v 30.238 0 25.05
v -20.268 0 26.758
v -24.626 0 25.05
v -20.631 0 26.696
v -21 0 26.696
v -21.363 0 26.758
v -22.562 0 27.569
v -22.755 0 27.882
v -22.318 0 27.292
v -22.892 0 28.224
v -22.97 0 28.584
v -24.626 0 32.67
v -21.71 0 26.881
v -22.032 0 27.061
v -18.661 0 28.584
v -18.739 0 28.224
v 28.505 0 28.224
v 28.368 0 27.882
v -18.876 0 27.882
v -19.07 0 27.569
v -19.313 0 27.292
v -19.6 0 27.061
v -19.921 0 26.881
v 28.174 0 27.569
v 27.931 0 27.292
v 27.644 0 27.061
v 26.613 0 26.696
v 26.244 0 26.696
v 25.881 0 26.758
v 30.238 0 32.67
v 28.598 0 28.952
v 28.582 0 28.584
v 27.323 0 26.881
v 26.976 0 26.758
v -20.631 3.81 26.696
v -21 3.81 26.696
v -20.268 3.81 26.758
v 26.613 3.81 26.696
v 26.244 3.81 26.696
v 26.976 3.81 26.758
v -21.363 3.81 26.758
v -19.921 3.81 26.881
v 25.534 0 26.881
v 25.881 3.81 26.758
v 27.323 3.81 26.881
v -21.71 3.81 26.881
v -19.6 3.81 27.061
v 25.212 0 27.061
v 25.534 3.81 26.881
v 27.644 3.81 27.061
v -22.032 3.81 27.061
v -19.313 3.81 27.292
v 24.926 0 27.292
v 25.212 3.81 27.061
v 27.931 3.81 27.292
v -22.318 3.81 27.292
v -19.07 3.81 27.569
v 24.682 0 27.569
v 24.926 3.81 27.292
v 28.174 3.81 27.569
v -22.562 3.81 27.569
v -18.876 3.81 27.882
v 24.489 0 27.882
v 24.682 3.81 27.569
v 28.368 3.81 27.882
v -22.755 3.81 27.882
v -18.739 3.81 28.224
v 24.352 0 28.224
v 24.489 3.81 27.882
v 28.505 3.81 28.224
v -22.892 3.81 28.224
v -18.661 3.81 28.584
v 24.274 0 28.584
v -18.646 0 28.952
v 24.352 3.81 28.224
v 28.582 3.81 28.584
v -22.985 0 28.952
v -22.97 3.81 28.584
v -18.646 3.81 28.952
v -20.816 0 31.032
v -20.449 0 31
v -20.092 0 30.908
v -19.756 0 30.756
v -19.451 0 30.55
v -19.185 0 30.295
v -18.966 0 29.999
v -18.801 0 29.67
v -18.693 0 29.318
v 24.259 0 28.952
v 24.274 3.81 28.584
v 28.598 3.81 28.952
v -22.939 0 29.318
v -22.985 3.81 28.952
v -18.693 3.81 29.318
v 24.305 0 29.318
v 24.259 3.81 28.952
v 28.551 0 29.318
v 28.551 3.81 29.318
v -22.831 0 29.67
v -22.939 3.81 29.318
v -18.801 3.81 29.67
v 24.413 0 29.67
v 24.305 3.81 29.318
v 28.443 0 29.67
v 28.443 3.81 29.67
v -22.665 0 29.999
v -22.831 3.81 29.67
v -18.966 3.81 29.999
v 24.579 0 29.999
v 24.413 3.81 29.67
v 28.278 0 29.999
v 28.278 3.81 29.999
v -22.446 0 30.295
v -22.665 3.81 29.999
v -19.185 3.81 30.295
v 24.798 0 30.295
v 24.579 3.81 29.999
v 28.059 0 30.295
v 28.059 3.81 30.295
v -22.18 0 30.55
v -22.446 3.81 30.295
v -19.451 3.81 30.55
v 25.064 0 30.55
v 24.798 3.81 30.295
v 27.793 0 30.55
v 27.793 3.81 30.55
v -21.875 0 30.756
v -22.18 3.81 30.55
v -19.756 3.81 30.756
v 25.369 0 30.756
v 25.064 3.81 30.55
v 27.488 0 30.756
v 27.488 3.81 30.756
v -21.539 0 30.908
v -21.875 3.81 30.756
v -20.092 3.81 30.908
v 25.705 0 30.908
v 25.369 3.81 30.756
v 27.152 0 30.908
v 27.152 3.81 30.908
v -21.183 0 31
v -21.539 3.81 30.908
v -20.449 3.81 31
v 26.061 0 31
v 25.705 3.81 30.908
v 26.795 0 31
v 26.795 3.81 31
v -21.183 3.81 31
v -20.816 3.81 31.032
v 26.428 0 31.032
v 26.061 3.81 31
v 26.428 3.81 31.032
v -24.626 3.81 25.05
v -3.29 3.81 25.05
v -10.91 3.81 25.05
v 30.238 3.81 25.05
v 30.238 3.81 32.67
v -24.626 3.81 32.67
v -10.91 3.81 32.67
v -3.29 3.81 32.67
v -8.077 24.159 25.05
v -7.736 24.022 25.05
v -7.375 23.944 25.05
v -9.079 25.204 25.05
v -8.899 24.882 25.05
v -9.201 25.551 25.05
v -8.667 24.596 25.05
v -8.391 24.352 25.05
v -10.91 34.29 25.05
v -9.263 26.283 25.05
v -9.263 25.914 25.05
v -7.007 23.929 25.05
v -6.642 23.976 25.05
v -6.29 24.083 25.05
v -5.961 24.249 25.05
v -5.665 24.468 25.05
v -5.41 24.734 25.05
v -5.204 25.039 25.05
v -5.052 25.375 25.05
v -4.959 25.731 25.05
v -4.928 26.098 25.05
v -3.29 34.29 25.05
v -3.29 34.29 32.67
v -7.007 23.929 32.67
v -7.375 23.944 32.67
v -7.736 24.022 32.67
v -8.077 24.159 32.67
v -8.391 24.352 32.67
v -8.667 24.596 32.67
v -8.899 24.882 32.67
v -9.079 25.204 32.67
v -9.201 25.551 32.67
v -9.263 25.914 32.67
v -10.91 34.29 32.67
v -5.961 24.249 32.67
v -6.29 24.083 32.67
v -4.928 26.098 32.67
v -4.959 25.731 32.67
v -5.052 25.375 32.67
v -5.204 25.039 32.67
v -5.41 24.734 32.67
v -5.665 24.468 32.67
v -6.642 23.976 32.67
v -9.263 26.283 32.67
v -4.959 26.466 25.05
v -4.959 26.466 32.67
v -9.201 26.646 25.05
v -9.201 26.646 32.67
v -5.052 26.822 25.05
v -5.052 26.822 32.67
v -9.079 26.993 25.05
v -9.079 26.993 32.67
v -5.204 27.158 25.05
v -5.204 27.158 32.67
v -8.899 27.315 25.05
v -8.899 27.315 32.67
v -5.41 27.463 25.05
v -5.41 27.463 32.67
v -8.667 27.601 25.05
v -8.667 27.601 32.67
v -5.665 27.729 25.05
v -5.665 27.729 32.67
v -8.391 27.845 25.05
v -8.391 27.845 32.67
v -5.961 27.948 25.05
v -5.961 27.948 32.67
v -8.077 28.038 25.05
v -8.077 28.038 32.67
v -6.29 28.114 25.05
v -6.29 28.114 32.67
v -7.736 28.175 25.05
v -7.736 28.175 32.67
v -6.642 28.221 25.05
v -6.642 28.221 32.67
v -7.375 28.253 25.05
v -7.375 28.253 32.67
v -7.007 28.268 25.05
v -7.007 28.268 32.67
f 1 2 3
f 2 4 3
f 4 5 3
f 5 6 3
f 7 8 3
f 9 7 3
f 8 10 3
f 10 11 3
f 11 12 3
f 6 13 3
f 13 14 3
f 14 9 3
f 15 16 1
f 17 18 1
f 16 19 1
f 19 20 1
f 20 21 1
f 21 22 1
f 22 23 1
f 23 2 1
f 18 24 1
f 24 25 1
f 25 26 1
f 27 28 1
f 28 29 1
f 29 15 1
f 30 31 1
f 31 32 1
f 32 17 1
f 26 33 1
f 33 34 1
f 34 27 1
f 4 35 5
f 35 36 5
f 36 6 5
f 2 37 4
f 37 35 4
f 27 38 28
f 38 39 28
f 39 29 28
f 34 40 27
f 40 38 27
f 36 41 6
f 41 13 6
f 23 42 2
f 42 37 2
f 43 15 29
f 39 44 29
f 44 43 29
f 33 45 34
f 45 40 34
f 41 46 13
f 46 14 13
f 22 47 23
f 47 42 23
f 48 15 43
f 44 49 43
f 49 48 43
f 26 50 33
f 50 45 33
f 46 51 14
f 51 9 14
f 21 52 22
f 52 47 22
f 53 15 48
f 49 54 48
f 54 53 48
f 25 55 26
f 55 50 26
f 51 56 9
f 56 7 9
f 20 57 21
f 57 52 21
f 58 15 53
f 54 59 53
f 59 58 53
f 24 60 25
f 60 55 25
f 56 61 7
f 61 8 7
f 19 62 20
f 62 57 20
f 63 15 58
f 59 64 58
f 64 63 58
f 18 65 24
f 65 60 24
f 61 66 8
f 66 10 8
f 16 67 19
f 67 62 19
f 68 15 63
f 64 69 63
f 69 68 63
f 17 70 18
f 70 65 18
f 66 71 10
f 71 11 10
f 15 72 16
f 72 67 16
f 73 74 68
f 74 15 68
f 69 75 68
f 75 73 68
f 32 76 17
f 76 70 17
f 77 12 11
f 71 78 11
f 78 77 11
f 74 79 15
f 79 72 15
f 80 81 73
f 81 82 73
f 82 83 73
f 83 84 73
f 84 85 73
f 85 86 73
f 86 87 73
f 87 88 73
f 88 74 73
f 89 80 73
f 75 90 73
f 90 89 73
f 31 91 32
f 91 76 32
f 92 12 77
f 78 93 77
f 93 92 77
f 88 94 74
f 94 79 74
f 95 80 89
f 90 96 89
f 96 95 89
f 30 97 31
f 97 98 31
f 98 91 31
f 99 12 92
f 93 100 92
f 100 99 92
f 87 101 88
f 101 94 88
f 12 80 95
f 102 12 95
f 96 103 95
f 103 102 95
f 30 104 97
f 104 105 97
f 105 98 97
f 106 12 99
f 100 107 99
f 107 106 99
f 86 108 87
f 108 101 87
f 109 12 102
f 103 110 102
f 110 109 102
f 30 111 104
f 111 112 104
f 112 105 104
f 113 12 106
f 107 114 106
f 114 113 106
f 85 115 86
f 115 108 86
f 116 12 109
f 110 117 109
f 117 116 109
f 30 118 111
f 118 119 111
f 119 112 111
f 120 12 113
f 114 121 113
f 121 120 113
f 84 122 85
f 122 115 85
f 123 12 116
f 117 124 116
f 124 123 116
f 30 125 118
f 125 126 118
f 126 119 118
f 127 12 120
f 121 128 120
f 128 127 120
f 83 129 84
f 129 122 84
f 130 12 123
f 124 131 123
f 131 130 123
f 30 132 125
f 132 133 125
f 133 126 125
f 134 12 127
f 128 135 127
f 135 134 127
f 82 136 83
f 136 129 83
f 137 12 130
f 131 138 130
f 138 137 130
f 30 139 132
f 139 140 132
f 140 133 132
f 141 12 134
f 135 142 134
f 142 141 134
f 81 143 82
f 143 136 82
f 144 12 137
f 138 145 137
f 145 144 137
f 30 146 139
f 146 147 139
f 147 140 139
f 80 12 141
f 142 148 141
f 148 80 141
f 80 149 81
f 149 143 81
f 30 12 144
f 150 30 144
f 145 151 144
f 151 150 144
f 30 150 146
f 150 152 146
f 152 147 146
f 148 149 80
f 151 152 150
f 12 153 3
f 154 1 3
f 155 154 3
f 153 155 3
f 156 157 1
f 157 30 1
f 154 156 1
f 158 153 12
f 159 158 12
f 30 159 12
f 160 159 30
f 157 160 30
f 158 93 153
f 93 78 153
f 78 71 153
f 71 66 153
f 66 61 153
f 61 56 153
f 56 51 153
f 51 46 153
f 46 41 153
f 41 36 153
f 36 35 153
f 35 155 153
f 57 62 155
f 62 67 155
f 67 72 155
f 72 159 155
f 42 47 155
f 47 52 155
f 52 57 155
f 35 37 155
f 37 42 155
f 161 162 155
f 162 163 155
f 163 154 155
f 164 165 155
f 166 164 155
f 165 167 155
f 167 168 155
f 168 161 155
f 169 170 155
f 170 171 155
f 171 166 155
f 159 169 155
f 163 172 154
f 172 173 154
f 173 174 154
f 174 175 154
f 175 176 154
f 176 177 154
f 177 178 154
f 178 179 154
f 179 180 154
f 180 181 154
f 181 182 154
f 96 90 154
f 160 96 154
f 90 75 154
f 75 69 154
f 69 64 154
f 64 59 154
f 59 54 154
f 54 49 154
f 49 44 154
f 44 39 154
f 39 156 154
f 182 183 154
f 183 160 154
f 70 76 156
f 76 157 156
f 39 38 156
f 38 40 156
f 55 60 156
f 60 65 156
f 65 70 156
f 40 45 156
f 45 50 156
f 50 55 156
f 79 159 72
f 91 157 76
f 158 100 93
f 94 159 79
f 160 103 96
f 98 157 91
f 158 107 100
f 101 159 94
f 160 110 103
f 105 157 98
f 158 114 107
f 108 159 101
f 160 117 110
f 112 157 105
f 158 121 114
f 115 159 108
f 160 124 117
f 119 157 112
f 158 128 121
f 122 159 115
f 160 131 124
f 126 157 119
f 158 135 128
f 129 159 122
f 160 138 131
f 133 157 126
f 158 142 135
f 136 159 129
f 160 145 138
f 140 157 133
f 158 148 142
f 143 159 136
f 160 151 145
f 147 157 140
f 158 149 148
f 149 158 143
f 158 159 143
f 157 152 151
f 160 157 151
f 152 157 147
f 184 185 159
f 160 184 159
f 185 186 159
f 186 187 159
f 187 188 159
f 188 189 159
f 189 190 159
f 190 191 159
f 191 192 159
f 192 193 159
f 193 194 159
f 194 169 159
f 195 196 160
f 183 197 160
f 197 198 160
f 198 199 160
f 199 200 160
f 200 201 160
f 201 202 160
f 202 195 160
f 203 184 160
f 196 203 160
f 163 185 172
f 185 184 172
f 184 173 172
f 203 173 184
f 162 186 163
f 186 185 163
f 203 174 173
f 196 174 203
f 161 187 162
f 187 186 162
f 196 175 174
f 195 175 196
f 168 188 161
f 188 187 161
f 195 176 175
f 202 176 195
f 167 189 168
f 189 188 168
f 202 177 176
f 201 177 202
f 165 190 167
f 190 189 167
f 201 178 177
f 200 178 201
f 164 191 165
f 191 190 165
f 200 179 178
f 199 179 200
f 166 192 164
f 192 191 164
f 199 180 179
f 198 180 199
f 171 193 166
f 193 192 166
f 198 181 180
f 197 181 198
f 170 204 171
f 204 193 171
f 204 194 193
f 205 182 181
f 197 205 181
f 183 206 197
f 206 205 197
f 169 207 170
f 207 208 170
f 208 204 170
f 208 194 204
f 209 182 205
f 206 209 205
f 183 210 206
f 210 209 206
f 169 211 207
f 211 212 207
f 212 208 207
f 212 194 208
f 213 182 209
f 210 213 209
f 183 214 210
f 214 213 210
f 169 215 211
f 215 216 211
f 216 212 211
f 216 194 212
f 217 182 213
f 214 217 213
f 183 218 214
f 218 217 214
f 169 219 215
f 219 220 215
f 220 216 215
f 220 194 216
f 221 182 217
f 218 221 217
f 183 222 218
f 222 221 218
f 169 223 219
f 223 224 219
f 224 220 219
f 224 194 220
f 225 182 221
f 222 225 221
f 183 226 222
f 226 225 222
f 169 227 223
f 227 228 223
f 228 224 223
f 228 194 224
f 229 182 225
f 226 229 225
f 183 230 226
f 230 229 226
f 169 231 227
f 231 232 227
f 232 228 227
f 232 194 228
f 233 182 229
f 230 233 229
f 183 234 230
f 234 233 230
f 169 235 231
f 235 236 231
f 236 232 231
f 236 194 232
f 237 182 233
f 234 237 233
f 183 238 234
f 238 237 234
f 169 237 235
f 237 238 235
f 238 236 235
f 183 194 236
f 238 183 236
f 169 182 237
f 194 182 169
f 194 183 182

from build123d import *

# Parameters (mm, degrees)
SKETCH1_W           = 54.864
SKETCH1_H           = 7.62
BOSS_EXTRUDE1_DEPTH = 3.81
SKETCH2_R           = 2.1717
CUT_EXTRUDE2_DEPTH  = 3.81
SKETCH5_W           = 7.62
SKETCH5_H           = 7.62
BOSS_EXTRUDE2_DEPTH = 30.48
SKETCH6_R           = 2.1717
CUT_EXTRUDE3_DEPTH  = 7.62


with BuildPart() as part:
    # Sketch1 → Boss-Extrude1 (new body)
    with BuildSketch(Plane(origin=(0, 0, 0), x_dir=(1, 0, 0), z_dir=(0, 1, 0))):
        with Locations((2.806390244, -28.85997561)):
            Rectangle(SKETCH1_W, SKETCH1_H)
    extrude(amount=BOSS_EXTRUDE1_DEPTH)

    # Sketch2 → Cut-Extrude2 (cut)
    with BuildSketch(Plane(origin=(0, 3.81, 0), x_dir=(1, 0, 0), z_dir=(0, 1, 0))):
        with Locations(Location((-20.815609756, -28.85997561, 0), (0, 0, 270))):
            Circle(SKETCH2_R)
        with Locations(Location((26.428390244, -28.85997561, 0), (0, 0, 270))):
            Circle(SKETCH2_R)
    extrude(amount=-CUT_EXTRUDE2_DEPTH, mode=Mode.SUBTRACT)

    # Sketch5 → Boss-Extrude2 (add)
    with BuildSketch(Plane(origin=(0, 3.81, 0), x_dir=(1, 0, 0), z_dir=(0, 1, 0))):
        with Locations((-7.099609756, -28.85997561)):
            Rectangle(SKETCH5_W, SKETCH5_H)
    extrude(amount=BOSS_EXTRUDE2_DEPTH)

    # Sketch6 → Cut-Extrude3 (cut)
    with BuildSketch(Plane.XY.offset(32.66997561)):
        with Locations((-7.099609756, 26.0985)):
            Circle(SKETCH6_R)
    extrude(amount=-CUT_EXTRUDE3_DEPTH, mode=Mode.SUBTRACT)


solid = part.part
